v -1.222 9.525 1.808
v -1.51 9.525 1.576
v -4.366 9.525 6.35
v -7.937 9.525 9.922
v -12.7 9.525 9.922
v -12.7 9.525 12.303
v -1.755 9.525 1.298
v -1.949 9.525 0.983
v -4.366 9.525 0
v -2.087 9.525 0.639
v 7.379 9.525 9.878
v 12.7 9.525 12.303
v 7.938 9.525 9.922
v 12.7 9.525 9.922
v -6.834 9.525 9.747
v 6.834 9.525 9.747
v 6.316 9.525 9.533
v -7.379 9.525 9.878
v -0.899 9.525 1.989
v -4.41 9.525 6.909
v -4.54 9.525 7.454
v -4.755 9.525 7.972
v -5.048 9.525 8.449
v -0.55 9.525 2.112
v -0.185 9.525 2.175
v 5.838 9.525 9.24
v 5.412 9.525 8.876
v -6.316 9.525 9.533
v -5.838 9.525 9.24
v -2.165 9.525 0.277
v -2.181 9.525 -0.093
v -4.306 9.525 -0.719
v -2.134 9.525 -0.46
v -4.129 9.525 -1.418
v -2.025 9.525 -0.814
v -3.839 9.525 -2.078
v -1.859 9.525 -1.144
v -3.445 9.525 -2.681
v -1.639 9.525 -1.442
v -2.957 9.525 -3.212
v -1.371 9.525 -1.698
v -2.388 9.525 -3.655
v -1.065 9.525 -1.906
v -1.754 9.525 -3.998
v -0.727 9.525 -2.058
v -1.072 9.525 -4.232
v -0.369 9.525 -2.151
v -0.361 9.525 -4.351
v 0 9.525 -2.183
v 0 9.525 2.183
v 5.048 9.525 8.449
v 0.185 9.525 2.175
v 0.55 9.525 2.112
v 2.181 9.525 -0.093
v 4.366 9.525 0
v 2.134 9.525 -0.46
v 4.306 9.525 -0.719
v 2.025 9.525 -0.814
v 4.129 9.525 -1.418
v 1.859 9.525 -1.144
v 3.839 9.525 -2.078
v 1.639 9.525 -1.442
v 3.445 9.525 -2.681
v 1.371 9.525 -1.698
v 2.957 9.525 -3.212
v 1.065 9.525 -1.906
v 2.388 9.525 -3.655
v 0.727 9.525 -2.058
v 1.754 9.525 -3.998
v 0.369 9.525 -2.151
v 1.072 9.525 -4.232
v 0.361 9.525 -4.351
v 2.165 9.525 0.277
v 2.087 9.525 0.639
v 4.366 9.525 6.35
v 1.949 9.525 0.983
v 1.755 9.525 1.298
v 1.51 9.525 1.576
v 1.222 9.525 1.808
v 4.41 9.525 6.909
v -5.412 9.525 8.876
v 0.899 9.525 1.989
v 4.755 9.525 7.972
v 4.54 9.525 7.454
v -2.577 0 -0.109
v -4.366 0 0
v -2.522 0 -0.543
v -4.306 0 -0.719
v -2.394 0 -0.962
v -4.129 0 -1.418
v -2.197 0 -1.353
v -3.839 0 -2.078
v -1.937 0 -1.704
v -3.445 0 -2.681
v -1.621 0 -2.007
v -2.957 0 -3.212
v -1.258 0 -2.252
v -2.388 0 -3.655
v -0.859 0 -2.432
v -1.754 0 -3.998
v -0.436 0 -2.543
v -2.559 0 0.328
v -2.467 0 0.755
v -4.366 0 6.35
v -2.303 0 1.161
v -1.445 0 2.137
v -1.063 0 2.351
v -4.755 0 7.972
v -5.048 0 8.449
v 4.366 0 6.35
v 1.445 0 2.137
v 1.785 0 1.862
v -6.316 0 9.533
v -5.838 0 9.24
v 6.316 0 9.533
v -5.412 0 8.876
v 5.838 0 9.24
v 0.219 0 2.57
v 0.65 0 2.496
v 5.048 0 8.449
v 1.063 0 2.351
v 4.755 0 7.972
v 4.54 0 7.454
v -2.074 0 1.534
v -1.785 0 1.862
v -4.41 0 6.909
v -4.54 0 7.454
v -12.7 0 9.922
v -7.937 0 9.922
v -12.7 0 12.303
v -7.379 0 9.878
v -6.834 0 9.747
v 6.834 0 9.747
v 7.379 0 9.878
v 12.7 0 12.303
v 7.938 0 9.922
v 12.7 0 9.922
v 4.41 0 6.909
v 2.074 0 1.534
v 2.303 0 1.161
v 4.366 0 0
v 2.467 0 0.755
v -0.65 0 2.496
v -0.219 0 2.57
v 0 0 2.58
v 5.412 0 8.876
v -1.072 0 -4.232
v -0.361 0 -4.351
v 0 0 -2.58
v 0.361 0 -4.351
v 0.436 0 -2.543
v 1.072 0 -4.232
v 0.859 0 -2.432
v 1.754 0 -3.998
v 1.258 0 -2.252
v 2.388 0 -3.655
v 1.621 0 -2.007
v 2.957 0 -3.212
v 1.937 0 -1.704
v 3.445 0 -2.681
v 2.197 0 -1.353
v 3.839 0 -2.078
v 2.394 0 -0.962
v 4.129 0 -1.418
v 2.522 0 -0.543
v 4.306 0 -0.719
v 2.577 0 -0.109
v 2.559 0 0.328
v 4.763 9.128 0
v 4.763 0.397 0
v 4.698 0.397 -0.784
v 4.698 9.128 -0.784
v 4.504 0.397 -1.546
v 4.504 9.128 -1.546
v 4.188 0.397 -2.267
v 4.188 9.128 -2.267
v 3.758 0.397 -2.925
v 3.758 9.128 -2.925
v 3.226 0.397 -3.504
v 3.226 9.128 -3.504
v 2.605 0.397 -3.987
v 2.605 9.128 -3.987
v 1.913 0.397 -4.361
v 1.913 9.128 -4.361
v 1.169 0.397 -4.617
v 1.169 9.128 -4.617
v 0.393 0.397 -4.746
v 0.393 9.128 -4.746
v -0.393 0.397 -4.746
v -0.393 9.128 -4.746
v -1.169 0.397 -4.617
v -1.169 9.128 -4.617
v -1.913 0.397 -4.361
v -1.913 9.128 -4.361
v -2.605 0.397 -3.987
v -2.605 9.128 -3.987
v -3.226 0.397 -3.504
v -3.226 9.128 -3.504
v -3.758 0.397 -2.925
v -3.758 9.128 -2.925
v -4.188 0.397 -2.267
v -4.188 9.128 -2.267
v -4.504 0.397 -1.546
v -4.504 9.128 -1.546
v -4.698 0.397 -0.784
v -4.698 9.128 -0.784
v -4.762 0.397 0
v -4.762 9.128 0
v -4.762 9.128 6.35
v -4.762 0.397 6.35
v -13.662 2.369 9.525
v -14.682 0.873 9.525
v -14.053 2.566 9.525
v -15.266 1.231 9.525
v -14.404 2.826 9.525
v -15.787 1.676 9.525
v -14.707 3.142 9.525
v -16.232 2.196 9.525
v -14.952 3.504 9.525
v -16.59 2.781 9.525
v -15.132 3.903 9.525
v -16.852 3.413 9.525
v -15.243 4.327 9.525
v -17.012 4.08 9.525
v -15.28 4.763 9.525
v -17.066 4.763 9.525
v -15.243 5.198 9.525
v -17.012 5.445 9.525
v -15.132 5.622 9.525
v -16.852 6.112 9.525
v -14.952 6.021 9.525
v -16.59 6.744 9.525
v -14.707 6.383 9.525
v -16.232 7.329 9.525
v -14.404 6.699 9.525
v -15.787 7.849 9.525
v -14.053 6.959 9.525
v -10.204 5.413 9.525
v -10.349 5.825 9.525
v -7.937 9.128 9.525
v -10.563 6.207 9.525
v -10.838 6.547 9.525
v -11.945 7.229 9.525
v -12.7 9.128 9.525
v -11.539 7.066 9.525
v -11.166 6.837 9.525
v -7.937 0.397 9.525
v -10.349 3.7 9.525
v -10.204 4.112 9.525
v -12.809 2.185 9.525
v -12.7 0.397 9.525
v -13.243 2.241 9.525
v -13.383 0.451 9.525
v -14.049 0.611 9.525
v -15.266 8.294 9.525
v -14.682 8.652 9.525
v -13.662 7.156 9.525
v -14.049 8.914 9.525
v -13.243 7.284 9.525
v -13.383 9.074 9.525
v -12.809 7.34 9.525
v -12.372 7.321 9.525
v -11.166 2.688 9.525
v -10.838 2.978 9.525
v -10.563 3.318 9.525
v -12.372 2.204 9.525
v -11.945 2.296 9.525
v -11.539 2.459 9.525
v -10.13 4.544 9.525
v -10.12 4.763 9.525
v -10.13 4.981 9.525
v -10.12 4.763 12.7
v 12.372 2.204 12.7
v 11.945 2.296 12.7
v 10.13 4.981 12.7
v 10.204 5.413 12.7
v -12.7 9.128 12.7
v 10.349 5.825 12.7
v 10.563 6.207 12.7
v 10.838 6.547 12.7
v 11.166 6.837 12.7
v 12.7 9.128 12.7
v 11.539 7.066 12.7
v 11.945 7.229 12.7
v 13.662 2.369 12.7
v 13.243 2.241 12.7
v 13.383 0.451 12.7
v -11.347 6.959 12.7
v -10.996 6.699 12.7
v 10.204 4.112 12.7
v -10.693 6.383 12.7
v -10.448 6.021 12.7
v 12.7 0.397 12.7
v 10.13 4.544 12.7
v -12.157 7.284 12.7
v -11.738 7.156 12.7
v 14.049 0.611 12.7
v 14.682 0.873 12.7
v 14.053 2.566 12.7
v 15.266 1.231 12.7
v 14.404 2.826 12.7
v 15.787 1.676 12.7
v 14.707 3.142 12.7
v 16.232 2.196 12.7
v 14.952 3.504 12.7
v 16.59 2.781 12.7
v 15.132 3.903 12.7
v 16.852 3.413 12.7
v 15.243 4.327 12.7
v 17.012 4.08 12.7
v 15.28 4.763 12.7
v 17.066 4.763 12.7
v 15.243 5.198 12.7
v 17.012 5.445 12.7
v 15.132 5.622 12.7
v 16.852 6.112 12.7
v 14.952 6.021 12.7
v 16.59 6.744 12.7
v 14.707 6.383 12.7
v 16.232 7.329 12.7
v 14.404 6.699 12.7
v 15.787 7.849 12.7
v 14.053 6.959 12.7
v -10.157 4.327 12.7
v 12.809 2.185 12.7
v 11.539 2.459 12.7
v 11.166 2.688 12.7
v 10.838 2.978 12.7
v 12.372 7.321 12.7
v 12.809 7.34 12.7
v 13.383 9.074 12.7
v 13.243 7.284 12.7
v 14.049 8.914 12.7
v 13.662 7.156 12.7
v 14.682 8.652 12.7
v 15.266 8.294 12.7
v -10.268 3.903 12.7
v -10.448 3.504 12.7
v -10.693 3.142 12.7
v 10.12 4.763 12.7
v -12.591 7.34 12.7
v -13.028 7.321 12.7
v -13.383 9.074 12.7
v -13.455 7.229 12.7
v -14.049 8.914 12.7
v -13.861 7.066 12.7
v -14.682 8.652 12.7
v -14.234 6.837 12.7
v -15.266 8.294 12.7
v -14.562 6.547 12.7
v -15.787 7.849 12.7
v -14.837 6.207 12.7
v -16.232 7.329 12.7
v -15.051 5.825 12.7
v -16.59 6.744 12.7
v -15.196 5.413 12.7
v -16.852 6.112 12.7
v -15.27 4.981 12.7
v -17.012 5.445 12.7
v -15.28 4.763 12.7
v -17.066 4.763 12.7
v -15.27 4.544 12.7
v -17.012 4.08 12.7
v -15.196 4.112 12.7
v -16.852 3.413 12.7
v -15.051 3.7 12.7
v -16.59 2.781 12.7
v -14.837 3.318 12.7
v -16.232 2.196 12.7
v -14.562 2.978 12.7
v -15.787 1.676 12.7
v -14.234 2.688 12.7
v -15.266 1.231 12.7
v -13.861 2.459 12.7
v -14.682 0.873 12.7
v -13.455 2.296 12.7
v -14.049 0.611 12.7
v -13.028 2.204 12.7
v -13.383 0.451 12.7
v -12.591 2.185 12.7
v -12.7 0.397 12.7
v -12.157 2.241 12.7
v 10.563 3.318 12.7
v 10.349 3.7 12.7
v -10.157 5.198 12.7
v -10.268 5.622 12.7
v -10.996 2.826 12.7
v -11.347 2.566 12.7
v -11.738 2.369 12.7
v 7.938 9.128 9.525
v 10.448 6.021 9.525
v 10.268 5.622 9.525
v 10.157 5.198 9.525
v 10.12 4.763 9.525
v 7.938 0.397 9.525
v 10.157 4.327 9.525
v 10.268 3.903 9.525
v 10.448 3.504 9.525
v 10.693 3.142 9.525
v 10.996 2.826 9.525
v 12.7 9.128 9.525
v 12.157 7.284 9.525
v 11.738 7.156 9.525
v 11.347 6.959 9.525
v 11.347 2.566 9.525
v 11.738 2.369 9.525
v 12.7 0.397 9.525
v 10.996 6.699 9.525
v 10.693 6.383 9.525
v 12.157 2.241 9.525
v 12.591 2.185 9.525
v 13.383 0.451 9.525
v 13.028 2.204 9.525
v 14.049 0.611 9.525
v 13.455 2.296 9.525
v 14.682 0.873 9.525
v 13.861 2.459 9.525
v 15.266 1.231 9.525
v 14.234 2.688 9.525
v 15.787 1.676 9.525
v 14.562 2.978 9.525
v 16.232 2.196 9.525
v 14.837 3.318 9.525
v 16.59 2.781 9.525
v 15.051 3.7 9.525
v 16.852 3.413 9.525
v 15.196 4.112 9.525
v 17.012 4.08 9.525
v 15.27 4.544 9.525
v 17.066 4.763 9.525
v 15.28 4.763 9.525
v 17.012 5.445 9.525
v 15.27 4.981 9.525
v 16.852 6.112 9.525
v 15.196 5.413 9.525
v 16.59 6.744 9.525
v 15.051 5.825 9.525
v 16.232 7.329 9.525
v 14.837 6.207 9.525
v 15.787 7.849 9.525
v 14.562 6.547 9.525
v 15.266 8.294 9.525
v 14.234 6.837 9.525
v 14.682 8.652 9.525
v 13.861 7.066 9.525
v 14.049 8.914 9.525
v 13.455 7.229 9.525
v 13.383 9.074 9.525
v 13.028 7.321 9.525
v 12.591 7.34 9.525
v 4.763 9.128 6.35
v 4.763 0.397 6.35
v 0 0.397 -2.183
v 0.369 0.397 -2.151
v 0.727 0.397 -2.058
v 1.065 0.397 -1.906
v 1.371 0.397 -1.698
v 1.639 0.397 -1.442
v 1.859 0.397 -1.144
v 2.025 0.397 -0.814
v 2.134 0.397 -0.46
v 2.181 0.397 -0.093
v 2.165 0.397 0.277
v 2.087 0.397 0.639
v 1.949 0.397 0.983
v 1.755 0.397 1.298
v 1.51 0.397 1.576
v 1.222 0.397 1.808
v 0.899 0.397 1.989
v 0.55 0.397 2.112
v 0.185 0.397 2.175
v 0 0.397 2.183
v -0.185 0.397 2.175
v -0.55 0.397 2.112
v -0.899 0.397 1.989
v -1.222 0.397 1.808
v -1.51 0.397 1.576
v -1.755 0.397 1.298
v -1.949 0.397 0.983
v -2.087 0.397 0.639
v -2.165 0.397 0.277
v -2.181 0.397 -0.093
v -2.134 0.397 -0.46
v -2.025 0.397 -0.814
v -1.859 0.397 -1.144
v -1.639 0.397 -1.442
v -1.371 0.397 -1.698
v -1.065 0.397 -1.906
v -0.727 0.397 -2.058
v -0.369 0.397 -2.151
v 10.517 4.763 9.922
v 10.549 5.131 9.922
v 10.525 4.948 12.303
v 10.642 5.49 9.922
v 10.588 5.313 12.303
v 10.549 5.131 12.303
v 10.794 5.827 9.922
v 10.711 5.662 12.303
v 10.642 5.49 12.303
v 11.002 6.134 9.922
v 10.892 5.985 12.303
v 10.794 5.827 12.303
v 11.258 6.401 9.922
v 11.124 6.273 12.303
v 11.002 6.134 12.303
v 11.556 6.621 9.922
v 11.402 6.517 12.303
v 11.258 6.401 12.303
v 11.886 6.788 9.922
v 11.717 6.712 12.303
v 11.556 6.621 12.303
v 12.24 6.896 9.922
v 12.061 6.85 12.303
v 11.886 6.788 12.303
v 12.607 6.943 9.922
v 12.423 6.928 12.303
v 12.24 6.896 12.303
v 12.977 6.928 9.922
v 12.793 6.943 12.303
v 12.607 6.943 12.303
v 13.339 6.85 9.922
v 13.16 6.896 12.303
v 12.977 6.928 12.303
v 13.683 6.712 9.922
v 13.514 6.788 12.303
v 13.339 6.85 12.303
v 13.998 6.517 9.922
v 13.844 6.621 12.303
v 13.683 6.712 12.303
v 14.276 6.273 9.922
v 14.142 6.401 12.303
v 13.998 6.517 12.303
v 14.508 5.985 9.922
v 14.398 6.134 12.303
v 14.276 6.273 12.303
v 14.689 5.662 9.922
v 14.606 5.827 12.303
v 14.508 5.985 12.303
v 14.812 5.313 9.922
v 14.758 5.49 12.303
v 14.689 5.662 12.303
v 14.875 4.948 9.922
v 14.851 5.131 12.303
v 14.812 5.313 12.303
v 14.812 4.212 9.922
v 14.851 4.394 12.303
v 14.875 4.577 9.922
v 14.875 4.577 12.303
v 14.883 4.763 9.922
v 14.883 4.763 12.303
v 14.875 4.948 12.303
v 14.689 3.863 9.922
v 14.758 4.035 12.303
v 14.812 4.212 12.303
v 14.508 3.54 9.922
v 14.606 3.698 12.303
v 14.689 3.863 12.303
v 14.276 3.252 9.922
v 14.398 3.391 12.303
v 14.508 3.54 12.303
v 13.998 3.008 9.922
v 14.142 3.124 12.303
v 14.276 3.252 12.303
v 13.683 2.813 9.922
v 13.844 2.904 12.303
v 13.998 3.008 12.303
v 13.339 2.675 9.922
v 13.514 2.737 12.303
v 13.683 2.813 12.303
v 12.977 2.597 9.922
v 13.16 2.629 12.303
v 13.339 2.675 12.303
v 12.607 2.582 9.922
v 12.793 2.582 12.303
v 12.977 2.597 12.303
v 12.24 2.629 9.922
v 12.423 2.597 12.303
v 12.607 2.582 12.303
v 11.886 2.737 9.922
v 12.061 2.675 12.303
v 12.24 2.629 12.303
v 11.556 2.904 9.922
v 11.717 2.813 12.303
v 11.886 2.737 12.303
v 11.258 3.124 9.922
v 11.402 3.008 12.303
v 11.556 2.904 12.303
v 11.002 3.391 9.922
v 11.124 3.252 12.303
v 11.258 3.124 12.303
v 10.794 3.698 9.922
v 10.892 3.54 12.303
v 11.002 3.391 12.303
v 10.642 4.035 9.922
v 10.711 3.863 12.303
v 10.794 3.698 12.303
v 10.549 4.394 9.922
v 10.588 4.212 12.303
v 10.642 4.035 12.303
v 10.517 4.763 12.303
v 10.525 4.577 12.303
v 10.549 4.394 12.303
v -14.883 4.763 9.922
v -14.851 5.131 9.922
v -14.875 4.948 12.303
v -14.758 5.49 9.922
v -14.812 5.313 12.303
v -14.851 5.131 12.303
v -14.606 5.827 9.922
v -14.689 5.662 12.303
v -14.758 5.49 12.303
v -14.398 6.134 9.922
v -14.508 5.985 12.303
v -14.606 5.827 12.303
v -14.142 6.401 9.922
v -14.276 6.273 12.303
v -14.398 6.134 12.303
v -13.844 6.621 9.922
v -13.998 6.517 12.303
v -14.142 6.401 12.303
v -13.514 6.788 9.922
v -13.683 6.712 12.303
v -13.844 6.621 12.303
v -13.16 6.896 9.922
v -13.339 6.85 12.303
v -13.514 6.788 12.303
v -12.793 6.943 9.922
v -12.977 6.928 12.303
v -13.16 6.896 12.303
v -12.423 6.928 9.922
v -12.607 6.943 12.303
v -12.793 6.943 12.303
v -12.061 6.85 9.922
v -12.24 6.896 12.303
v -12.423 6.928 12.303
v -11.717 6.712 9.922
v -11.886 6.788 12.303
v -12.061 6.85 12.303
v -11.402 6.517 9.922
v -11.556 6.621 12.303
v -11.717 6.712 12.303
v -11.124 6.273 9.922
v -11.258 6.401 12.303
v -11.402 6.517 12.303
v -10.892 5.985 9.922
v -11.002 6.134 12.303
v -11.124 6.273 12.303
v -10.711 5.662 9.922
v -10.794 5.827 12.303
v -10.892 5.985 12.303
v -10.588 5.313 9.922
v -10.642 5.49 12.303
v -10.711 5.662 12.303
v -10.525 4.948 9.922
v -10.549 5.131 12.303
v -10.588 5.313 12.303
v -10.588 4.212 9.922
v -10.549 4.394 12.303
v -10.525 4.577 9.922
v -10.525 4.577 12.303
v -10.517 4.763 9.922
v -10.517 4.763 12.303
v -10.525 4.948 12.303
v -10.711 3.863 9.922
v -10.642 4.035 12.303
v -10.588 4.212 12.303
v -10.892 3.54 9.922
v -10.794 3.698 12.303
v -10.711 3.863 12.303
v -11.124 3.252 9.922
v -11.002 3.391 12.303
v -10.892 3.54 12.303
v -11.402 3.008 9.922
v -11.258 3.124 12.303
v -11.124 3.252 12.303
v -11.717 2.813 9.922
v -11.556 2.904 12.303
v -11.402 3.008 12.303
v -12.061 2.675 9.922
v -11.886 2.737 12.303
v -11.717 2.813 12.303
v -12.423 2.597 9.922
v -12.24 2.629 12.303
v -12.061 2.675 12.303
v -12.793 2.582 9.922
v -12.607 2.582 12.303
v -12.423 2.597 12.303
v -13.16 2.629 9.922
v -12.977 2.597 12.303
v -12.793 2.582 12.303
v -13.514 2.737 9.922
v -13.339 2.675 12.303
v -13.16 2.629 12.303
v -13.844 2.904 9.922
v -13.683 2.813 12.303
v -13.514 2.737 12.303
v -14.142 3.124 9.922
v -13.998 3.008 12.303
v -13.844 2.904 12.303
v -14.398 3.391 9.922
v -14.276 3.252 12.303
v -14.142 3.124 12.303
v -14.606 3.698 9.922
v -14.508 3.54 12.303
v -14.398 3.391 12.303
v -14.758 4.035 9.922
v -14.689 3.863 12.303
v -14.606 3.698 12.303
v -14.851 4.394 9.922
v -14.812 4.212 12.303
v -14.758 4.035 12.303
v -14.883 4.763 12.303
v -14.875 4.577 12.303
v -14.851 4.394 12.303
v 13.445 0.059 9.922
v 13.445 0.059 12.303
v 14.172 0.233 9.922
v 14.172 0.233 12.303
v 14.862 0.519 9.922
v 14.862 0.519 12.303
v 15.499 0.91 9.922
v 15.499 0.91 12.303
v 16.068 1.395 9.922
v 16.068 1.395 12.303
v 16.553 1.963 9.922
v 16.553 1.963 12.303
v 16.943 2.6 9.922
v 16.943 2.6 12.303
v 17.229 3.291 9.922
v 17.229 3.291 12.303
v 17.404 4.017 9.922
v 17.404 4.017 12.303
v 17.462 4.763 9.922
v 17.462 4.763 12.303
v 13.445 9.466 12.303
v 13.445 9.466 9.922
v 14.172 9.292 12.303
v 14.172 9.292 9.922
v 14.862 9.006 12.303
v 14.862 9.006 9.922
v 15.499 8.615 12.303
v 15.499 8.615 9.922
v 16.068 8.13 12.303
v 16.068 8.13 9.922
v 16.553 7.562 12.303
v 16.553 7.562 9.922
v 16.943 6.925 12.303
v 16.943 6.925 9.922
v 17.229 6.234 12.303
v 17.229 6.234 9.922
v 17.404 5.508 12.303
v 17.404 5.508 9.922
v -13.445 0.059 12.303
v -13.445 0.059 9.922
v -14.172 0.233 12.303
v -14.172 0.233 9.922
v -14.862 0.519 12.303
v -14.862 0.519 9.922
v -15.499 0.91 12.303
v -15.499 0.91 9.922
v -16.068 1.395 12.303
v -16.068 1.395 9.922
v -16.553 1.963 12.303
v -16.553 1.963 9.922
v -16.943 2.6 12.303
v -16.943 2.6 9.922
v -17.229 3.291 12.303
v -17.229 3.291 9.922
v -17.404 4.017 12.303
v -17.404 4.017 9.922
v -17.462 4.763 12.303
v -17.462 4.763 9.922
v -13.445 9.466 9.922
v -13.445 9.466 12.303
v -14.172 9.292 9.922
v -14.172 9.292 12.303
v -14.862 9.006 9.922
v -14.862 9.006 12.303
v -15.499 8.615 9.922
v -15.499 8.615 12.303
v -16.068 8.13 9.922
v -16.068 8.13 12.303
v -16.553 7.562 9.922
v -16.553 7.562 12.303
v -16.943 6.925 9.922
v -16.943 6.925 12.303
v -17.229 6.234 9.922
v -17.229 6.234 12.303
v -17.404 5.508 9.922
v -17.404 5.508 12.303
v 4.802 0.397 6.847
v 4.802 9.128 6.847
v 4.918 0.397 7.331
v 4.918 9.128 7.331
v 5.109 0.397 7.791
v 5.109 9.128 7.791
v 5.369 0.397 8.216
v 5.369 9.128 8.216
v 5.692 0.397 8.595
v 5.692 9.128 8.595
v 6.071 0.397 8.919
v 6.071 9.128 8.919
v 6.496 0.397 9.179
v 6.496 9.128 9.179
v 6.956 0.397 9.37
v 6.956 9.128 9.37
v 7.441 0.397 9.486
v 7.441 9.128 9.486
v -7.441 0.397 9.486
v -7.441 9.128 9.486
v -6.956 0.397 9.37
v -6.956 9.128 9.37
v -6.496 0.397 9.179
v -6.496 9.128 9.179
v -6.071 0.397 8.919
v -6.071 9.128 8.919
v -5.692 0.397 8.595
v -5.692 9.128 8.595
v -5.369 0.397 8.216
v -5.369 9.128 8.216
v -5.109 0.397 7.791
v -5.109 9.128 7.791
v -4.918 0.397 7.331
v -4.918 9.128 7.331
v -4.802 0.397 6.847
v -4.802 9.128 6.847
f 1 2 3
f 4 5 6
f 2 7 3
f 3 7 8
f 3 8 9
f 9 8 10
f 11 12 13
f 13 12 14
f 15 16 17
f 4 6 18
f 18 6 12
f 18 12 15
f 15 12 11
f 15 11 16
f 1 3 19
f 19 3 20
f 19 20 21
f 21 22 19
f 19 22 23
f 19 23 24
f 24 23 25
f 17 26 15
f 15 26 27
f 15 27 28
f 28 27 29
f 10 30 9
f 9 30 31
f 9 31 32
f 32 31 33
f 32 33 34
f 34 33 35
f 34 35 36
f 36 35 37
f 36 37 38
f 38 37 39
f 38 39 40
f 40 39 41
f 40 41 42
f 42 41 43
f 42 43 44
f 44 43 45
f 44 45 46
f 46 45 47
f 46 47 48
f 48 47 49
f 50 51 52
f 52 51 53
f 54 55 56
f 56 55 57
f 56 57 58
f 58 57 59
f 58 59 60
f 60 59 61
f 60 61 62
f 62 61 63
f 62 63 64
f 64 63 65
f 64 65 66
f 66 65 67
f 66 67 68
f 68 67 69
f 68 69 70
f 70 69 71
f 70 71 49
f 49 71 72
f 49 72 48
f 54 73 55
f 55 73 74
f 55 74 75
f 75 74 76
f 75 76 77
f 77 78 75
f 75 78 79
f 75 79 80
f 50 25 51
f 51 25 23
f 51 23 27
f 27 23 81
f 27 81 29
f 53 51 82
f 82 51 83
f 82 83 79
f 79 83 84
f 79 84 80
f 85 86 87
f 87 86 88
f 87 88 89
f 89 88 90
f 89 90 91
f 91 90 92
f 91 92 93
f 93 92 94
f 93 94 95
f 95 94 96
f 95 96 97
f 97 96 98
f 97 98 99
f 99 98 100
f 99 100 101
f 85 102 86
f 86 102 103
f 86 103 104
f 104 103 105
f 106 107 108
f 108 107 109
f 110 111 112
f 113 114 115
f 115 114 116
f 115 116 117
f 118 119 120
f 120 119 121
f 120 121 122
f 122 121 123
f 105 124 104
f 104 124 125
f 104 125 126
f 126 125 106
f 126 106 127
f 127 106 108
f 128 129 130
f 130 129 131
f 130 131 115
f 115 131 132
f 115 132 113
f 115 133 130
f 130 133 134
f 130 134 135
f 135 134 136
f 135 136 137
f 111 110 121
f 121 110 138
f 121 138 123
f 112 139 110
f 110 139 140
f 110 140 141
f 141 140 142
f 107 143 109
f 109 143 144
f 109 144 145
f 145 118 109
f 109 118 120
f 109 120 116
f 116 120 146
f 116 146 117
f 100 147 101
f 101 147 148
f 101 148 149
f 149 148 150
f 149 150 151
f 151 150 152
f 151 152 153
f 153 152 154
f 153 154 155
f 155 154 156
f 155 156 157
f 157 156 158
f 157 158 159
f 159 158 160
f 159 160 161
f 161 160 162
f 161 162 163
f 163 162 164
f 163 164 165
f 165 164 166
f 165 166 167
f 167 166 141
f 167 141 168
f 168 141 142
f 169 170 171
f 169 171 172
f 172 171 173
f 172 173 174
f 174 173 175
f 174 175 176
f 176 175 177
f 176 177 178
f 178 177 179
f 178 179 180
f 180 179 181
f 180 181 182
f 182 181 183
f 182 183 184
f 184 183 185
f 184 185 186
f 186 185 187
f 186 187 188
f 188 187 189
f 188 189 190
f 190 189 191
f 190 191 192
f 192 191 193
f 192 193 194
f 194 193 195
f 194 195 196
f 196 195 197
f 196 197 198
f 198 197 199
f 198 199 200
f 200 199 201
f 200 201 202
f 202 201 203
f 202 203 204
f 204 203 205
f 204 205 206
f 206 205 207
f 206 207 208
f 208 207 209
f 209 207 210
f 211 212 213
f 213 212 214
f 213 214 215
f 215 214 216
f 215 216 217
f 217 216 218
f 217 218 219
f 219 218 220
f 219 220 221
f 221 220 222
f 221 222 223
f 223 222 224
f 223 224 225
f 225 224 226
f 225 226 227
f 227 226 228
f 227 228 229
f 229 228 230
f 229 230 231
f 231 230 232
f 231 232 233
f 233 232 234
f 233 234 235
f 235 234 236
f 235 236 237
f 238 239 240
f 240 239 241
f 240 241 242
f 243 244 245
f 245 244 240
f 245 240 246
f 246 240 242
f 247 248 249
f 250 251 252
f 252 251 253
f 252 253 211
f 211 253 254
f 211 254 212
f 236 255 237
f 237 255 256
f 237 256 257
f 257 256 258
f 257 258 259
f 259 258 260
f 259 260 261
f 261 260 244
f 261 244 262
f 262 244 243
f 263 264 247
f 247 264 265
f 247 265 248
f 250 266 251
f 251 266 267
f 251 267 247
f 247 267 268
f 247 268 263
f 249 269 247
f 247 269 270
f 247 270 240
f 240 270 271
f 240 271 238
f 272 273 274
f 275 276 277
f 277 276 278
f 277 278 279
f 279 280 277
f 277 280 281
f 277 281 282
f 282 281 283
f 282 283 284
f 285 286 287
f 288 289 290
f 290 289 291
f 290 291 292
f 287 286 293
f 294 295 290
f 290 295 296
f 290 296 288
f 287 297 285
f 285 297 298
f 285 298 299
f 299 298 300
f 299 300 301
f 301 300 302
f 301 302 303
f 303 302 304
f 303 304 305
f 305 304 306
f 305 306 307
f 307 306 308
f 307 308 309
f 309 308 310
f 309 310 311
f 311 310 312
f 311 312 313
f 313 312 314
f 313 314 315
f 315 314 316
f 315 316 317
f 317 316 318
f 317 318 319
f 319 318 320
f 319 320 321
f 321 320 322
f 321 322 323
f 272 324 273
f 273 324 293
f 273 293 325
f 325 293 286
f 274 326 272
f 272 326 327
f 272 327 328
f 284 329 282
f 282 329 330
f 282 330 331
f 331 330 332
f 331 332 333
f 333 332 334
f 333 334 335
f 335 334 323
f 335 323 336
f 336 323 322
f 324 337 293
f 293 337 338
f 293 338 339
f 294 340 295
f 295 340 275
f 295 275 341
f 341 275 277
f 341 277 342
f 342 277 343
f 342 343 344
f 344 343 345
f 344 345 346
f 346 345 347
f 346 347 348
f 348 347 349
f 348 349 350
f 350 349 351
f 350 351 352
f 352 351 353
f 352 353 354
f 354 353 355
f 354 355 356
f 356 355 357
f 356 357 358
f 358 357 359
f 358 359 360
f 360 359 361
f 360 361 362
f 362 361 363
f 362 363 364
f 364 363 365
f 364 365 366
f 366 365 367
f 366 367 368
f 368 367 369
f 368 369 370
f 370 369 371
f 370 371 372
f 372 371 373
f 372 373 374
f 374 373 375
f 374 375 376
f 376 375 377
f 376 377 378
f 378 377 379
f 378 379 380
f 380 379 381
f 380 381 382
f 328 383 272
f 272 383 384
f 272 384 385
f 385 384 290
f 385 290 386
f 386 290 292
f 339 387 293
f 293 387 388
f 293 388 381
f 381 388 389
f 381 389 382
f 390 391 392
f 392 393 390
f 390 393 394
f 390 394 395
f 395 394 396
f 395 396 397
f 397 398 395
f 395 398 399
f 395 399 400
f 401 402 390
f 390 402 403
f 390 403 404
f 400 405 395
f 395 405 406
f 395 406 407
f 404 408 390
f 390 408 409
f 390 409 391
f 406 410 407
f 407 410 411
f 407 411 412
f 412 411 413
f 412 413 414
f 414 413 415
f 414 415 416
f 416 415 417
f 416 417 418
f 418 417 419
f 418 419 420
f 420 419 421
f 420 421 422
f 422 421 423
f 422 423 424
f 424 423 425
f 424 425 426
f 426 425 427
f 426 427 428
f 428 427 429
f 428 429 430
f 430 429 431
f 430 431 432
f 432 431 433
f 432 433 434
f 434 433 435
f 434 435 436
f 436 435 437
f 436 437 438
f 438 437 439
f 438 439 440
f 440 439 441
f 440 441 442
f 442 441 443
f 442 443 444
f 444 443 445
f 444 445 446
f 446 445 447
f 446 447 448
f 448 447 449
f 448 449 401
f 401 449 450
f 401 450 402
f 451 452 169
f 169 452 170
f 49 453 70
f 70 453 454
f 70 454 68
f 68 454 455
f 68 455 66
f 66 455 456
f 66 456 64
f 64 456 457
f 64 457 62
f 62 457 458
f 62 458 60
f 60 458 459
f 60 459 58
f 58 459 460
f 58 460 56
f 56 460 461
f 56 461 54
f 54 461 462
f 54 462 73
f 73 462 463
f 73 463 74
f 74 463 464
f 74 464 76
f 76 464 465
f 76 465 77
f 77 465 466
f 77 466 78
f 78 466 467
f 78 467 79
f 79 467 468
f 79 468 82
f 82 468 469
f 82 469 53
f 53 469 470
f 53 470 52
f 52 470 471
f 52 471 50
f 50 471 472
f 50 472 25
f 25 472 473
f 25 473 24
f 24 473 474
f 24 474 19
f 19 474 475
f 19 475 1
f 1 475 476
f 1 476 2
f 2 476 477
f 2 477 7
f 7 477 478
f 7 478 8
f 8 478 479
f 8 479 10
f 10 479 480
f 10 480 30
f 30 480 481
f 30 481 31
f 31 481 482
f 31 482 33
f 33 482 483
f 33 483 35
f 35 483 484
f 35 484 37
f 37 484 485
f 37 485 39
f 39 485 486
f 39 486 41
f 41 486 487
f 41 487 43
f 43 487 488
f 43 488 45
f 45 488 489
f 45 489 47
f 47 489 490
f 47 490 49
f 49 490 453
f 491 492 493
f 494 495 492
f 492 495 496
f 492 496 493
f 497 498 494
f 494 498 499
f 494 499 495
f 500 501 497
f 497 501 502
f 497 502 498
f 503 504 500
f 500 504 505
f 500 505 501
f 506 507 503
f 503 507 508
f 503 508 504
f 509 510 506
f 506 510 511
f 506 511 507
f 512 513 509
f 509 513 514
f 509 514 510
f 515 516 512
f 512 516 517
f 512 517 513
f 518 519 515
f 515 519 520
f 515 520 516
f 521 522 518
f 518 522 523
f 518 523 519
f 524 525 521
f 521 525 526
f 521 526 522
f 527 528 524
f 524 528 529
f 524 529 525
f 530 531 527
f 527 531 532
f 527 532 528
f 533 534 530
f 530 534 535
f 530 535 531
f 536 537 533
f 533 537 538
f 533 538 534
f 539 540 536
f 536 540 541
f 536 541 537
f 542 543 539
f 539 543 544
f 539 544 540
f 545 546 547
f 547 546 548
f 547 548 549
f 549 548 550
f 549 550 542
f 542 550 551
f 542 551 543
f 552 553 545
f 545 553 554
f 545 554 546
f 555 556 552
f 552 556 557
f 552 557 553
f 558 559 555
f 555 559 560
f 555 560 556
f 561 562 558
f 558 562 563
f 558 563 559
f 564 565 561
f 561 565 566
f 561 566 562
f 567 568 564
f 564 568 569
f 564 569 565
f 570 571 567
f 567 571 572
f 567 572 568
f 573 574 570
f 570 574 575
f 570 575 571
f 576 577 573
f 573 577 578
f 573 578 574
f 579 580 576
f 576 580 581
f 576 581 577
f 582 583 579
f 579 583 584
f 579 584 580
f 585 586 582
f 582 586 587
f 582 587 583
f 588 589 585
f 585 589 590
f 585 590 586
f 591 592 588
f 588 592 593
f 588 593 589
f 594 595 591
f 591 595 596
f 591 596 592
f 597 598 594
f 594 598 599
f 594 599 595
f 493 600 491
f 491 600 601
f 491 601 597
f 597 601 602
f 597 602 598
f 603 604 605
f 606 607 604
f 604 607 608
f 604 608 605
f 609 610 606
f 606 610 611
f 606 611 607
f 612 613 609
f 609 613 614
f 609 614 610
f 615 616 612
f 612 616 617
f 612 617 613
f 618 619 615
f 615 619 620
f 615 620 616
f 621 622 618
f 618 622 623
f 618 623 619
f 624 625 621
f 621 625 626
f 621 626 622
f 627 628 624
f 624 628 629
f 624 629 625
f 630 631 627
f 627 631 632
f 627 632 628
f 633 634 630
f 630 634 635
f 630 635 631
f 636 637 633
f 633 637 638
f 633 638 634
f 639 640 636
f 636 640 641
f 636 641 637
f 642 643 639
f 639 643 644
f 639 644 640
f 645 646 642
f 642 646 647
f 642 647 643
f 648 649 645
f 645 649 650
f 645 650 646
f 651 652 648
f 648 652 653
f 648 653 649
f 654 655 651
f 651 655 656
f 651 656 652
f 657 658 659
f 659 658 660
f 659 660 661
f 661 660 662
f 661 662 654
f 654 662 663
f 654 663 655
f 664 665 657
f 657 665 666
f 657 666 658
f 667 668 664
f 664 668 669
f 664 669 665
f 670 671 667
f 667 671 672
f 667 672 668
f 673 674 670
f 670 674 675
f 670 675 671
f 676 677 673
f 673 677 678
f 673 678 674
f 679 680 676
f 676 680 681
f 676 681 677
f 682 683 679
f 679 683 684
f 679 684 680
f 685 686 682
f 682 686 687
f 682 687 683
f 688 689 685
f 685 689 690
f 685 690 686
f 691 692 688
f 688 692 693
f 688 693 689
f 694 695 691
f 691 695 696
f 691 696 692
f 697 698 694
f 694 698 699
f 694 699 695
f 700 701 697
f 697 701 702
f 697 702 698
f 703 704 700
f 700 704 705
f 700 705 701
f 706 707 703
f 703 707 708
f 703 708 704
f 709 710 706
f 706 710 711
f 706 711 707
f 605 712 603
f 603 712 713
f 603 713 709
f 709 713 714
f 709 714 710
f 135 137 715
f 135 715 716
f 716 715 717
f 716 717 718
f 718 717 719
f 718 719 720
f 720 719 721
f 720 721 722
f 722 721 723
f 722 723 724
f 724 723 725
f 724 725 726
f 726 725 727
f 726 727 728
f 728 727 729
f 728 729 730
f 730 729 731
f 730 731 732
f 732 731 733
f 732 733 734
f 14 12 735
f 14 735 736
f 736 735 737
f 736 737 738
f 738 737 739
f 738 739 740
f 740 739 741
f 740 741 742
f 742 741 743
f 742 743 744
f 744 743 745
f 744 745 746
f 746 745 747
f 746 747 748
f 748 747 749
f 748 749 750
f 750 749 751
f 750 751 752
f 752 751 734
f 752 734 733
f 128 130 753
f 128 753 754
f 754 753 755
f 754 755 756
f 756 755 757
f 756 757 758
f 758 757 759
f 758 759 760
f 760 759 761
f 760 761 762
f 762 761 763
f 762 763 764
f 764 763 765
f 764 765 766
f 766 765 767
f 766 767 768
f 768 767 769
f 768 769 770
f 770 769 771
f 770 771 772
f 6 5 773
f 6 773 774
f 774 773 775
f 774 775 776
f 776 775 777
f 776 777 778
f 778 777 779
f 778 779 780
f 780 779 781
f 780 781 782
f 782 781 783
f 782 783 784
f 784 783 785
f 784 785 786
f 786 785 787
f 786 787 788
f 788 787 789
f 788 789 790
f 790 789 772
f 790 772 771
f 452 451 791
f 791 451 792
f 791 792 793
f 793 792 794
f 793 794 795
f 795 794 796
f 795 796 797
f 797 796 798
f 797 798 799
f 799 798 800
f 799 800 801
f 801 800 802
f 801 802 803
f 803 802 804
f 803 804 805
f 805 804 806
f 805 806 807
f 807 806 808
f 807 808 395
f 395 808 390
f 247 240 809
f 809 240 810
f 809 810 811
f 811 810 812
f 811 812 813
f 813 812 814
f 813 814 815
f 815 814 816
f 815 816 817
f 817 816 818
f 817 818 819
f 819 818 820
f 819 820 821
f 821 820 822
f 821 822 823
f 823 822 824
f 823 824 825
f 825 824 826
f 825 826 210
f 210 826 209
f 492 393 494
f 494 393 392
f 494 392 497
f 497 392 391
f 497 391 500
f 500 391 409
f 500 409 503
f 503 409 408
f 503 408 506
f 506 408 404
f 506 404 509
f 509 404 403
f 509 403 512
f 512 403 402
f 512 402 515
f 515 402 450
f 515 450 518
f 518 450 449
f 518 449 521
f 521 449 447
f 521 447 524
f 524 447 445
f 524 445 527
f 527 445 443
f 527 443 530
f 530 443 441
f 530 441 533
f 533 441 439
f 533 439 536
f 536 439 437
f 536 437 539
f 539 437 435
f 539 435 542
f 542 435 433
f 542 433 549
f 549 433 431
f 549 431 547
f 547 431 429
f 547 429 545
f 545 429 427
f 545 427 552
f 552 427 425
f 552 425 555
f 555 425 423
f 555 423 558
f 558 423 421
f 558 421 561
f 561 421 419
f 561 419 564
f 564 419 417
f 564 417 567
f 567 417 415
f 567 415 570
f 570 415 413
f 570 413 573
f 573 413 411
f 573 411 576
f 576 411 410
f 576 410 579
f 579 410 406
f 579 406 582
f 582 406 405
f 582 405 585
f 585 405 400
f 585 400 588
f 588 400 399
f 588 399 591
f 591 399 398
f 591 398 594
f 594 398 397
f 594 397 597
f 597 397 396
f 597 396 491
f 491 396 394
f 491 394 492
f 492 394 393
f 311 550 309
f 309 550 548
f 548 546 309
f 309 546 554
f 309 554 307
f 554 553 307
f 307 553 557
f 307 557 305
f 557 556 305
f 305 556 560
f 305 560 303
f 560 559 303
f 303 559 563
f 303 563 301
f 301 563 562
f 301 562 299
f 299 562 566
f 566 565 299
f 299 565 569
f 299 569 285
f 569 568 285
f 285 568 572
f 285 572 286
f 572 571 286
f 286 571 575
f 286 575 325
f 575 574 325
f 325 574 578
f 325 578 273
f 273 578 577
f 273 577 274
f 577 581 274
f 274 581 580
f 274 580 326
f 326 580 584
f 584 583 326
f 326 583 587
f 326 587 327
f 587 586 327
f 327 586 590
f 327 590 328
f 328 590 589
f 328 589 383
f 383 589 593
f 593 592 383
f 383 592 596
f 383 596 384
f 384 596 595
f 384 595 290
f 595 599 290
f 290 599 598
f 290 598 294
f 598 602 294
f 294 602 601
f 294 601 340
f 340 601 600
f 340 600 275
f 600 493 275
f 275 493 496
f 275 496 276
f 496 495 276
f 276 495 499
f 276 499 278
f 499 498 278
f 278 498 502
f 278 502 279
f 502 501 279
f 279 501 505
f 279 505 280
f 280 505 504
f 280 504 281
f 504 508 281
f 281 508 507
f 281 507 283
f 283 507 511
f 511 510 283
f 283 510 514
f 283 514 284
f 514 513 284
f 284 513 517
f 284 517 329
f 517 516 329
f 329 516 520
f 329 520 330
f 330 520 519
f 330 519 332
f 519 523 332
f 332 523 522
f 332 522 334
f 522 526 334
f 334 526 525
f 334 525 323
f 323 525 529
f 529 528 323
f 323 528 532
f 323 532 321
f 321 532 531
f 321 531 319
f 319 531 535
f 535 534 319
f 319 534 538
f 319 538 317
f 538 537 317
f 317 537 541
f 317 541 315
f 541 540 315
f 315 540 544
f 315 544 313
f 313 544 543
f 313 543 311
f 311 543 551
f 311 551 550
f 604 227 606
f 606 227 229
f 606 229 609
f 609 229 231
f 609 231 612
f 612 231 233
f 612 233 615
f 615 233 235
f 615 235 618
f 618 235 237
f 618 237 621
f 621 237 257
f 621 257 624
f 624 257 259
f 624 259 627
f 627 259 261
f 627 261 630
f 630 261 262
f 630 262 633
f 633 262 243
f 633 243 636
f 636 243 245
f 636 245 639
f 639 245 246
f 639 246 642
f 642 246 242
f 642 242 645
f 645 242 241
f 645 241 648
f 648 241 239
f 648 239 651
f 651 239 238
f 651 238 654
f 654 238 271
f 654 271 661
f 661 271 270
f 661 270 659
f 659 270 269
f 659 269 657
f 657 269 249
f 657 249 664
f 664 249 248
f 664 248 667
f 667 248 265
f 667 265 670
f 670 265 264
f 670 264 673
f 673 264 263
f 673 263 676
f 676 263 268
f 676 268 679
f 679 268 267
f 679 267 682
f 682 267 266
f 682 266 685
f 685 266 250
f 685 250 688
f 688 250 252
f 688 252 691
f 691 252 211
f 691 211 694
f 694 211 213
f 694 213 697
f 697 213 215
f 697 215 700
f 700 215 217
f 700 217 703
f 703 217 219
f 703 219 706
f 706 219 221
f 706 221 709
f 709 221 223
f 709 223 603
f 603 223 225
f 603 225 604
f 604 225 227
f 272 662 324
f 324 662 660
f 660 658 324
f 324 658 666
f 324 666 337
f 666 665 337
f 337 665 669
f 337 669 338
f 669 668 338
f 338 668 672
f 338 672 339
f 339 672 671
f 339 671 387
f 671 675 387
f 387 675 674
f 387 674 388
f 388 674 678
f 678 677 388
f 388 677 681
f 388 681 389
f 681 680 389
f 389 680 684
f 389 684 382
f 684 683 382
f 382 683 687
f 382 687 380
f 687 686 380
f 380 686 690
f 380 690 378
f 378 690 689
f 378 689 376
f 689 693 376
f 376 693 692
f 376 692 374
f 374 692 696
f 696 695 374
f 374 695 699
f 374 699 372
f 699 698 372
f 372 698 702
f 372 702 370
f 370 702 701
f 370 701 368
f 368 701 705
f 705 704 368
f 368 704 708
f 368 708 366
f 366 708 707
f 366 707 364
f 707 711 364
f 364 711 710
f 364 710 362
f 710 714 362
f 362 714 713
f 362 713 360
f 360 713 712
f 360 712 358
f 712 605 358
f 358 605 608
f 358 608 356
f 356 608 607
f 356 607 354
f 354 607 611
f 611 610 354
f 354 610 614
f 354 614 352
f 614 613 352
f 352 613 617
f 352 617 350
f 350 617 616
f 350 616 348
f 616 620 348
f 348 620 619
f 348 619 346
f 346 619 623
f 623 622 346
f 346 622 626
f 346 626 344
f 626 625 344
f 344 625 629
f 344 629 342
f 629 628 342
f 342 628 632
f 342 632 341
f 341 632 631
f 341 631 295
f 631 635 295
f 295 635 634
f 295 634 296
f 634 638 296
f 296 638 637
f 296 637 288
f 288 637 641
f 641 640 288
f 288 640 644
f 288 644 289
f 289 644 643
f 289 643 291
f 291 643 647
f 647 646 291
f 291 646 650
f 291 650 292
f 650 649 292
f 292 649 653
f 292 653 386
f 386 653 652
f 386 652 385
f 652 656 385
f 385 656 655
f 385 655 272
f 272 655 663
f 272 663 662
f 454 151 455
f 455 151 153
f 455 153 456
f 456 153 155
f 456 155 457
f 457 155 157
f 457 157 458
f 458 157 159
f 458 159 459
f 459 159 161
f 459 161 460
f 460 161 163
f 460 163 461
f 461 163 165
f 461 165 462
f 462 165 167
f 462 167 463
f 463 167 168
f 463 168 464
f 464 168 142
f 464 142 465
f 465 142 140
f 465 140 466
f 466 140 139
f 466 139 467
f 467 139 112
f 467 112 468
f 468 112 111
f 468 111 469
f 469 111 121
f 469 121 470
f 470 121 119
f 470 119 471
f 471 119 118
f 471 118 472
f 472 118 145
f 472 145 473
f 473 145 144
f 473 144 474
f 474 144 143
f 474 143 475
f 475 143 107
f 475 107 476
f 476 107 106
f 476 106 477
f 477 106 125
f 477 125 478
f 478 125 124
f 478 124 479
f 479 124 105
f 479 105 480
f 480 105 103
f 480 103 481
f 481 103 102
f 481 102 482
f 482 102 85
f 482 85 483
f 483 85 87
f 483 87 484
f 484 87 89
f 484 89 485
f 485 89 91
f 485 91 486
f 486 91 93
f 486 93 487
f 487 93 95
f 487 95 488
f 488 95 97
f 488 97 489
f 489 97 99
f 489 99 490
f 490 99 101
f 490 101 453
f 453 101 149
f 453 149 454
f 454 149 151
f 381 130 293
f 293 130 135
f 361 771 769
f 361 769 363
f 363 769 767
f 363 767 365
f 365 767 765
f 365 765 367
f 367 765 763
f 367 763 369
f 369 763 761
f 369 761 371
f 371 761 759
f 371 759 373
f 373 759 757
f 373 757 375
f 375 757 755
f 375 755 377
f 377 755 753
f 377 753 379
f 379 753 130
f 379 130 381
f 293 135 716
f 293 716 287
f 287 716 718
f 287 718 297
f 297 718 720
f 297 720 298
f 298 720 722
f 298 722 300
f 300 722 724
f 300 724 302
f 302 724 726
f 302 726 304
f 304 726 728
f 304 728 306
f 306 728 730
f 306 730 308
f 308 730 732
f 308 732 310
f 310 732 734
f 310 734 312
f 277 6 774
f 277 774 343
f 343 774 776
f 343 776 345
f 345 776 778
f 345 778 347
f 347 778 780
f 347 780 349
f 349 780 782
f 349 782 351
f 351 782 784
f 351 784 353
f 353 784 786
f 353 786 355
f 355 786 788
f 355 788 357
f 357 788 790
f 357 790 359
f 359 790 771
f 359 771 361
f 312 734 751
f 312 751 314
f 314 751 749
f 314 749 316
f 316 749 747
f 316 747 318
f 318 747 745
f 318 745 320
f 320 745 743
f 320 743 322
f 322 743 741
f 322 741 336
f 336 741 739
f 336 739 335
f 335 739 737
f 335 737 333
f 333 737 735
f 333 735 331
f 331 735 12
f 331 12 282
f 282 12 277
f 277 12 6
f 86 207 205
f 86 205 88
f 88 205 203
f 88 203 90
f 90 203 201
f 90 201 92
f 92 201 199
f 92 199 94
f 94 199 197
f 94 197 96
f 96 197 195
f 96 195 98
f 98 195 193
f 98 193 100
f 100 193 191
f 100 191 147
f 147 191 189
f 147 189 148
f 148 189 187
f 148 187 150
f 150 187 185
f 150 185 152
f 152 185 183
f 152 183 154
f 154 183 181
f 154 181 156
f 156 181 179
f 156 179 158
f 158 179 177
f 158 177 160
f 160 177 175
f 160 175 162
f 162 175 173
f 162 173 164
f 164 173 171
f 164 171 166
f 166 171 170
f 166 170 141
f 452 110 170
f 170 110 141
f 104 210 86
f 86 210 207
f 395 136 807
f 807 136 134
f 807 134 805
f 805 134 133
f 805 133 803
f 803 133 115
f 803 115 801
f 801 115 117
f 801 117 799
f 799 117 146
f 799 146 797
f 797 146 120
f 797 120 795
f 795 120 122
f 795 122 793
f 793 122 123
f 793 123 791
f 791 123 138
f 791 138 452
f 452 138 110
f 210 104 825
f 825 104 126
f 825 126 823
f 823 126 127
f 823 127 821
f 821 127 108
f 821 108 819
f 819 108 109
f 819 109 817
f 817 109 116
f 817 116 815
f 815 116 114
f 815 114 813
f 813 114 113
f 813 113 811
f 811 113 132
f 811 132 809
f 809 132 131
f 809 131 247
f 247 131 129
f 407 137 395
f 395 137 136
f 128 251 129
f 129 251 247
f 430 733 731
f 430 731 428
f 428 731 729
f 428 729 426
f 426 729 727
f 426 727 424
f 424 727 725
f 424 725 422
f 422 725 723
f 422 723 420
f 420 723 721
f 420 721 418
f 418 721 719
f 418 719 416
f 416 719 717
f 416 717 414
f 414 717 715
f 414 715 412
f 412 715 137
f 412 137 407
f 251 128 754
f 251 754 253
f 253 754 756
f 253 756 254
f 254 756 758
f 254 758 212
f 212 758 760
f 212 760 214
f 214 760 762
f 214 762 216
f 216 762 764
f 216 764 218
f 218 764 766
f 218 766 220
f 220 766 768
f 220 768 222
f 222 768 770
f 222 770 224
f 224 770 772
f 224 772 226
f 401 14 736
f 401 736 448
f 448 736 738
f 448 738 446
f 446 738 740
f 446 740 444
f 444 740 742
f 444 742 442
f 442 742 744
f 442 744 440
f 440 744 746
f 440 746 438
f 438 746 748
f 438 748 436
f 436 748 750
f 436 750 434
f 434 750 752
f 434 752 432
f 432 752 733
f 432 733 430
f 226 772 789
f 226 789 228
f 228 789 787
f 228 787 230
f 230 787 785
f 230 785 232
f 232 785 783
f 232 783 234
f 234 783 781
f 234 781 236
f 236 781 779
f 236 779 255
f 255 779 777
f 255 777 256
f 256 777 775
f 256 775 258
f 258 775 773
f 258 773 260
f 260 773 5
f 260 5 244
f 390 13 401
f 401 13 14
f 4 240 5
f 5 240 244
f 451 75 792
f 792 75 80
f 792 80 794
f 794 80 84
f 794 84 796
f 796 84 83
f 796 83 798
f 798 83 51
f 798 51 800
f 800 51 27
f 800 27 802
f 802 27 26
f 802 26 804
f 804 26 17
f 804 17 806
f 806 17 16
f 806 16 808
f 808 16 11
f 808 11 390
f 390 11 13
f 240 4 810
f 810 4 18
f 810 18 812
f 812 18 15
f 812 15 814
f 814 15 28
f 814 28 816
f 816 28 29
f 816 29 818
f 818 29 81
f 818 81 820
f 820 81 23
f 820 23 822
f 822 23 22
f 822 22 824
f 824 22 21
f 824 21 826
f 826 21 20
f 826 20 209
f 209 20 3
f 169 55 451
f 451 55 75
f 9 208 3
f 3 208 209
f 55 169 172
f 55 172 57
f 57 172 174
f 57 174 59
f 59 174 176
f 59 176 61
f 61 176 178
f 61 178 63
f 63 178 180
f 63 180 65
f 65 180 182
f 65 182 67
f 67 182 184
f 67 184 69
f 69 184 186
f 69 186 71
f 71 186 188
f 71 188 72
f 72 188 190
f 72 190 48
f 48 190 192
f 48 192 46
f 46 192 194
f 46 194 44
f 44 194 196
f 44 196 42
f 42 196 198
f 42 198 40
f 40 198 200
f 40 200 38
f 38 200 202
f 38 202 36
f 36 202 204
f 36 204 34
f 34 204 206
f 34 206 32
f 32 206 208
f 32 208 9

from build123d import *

# Parameters (mm, degrees)
SKETCH1_R               = 2.1828125
BOSS_EXTRUDE1_DEPTH     = 9.525
CUT_EXTRUDE1_DEPTH      = 25.490757185
CUT_EXTRUDE1_DEPTH_BACK = 25.490757185
SKETCH2_R               = 2.1828125
FILLET1_R               = 4.7625
FILLET2_R               = 3.175
CHAMFER1_SIZE           = 0.396875


with BuildPart() as part:
    # Sketch1 → Boss-Extrude1 (new body)
    with BuildSketch(Plane(origin=(0, 0, 0), x_dir=(1, 0, 0), z_dir=(0, 1, 0))):
        with BuildLine():
            Line((-4.7625, 0), (-4.7625, -9.525))
            Line((-4.7625, -9.525), (-17.4625, -9.525))
            Line((-17.4625, -9.525), (-17.4625, -12.7))
            Line((-17.4625, -12.7), (17.4625, -12.7))
            Line((17.4625, -12.7), (17.4625, -9.525))
            Line((17.4625, -9.525), (4.7625, -9.525))
            Line((4.7625, -9.525), (4.7625, 0))
            ThreePointArc((4.7625, 0), (0, 4.7625), (-4.7625, 0))
        make_face()
        with Locations(Location((0, 0, 0), (0, 0, 90))):
            Circle(SKETCH1_R, mode=Mode.SUBTRACT)
    extrude(amount=BOSS_EXTRUDE1_DEPTH)

    # Sketch2 → Cut-Extrude1 (cut, two sides: drawn at the far end of the back side and taken through both)
    with BuildSketch(Plane(origin=(0, 0, 9.525), x_dir=(-1, 0, 0), z_dir=(0, 0, -1)).offset(-CUT_EXTRUDE1_DEPTH_BACK)):
        with Locations((-12.7, 4.7625)):
            Circle(SKETCH2_R)
        with Locations((12.7, 4.7625)):
            Circle(SKETCH2_R)
    extrude(amount=CUT_EXTRUDE1_DEPTH + CUT_EXTRUDE1_DEPTH_BACK, mode=Mode.SUBTRACT)

    # Fillet1
    fillet1_edges = [part.edges().sort_by_distance(p)[0] for p in [
        (17.4625, 9.525, 11.1125),
        (17.4625, 0, 11.1125),
        (-17.4625, 9.525, 11.1125),
        (-17.4625, 0, 11.1125),
    ]]
    fillet(fillet1_edges, radius=FILLET1_R - 0.0001)  # a hair under: the kernel refuses the full size

    # Fillet2
    fillet2_edges = [part.edges().sort_by_distance(p)[0] for p in [
        (4.7625, 4.7625, 9.525),
        (-4.7625, 4.7625, 9.525),
    ]]
    fillet(fillet2_edges, radius=FILLET2_R)

    # Chamfer1
    chamfer1_edges = [part.edges().sort_by_distance(p)[0] for p in [
        (-4.7625, 0, 3.175),
        (0, 0, -4.7625),
        (0, 0, 2.1828125),
        (14.8828125, 4.7625, 12.7),
        (14.8828125, 4.7625, 9.525),
        (-10.5171875, 4.7625, 12.7),
        (-10.5171875, 4.7625, 9.525),
        (0, 9.525, 12.7),
        (10.3188, 9.525, 9.525),
        (10.3188, 0, 9.525),
        (16.067625335, 1.394874665, 9.525),
        (16.067625335, 8.130125335, 9.525),
        (0, 0, 12.7),
        (-16.067625335, 1.394874665, 12.7),
        (-16.067625335, 8.130125335, 12.7),
        (16.067625335, 1.394874665, 12.7),
        (16.067625335, 8.130125335, 12.7),
        (-16.067625335, 1.394874665, 9.525),
        (-16.067625335, 8.130125335, 9.525),
        (0, 9.525, -4.7625),
        (4.7625, 0, 3.175),
        (4.7625, 9.525, 3.175),
        (-10.3188, 9.525, 9.525),
        (-10.3188, 0, 9.525),
        (5.69243597, 0, 8.59506403),
        (5.69243597, 9.525, 8.59506403),
        (-5.69243597, 0, 8.59506403),
        (-5.69243597, 9.525, 8.59506403),
        (-4.7625, 9.525, 3.175),
    ]]
    chamfer(chamfer1_edges, length=CHAMFER1_SIZE)


solid = part.part
